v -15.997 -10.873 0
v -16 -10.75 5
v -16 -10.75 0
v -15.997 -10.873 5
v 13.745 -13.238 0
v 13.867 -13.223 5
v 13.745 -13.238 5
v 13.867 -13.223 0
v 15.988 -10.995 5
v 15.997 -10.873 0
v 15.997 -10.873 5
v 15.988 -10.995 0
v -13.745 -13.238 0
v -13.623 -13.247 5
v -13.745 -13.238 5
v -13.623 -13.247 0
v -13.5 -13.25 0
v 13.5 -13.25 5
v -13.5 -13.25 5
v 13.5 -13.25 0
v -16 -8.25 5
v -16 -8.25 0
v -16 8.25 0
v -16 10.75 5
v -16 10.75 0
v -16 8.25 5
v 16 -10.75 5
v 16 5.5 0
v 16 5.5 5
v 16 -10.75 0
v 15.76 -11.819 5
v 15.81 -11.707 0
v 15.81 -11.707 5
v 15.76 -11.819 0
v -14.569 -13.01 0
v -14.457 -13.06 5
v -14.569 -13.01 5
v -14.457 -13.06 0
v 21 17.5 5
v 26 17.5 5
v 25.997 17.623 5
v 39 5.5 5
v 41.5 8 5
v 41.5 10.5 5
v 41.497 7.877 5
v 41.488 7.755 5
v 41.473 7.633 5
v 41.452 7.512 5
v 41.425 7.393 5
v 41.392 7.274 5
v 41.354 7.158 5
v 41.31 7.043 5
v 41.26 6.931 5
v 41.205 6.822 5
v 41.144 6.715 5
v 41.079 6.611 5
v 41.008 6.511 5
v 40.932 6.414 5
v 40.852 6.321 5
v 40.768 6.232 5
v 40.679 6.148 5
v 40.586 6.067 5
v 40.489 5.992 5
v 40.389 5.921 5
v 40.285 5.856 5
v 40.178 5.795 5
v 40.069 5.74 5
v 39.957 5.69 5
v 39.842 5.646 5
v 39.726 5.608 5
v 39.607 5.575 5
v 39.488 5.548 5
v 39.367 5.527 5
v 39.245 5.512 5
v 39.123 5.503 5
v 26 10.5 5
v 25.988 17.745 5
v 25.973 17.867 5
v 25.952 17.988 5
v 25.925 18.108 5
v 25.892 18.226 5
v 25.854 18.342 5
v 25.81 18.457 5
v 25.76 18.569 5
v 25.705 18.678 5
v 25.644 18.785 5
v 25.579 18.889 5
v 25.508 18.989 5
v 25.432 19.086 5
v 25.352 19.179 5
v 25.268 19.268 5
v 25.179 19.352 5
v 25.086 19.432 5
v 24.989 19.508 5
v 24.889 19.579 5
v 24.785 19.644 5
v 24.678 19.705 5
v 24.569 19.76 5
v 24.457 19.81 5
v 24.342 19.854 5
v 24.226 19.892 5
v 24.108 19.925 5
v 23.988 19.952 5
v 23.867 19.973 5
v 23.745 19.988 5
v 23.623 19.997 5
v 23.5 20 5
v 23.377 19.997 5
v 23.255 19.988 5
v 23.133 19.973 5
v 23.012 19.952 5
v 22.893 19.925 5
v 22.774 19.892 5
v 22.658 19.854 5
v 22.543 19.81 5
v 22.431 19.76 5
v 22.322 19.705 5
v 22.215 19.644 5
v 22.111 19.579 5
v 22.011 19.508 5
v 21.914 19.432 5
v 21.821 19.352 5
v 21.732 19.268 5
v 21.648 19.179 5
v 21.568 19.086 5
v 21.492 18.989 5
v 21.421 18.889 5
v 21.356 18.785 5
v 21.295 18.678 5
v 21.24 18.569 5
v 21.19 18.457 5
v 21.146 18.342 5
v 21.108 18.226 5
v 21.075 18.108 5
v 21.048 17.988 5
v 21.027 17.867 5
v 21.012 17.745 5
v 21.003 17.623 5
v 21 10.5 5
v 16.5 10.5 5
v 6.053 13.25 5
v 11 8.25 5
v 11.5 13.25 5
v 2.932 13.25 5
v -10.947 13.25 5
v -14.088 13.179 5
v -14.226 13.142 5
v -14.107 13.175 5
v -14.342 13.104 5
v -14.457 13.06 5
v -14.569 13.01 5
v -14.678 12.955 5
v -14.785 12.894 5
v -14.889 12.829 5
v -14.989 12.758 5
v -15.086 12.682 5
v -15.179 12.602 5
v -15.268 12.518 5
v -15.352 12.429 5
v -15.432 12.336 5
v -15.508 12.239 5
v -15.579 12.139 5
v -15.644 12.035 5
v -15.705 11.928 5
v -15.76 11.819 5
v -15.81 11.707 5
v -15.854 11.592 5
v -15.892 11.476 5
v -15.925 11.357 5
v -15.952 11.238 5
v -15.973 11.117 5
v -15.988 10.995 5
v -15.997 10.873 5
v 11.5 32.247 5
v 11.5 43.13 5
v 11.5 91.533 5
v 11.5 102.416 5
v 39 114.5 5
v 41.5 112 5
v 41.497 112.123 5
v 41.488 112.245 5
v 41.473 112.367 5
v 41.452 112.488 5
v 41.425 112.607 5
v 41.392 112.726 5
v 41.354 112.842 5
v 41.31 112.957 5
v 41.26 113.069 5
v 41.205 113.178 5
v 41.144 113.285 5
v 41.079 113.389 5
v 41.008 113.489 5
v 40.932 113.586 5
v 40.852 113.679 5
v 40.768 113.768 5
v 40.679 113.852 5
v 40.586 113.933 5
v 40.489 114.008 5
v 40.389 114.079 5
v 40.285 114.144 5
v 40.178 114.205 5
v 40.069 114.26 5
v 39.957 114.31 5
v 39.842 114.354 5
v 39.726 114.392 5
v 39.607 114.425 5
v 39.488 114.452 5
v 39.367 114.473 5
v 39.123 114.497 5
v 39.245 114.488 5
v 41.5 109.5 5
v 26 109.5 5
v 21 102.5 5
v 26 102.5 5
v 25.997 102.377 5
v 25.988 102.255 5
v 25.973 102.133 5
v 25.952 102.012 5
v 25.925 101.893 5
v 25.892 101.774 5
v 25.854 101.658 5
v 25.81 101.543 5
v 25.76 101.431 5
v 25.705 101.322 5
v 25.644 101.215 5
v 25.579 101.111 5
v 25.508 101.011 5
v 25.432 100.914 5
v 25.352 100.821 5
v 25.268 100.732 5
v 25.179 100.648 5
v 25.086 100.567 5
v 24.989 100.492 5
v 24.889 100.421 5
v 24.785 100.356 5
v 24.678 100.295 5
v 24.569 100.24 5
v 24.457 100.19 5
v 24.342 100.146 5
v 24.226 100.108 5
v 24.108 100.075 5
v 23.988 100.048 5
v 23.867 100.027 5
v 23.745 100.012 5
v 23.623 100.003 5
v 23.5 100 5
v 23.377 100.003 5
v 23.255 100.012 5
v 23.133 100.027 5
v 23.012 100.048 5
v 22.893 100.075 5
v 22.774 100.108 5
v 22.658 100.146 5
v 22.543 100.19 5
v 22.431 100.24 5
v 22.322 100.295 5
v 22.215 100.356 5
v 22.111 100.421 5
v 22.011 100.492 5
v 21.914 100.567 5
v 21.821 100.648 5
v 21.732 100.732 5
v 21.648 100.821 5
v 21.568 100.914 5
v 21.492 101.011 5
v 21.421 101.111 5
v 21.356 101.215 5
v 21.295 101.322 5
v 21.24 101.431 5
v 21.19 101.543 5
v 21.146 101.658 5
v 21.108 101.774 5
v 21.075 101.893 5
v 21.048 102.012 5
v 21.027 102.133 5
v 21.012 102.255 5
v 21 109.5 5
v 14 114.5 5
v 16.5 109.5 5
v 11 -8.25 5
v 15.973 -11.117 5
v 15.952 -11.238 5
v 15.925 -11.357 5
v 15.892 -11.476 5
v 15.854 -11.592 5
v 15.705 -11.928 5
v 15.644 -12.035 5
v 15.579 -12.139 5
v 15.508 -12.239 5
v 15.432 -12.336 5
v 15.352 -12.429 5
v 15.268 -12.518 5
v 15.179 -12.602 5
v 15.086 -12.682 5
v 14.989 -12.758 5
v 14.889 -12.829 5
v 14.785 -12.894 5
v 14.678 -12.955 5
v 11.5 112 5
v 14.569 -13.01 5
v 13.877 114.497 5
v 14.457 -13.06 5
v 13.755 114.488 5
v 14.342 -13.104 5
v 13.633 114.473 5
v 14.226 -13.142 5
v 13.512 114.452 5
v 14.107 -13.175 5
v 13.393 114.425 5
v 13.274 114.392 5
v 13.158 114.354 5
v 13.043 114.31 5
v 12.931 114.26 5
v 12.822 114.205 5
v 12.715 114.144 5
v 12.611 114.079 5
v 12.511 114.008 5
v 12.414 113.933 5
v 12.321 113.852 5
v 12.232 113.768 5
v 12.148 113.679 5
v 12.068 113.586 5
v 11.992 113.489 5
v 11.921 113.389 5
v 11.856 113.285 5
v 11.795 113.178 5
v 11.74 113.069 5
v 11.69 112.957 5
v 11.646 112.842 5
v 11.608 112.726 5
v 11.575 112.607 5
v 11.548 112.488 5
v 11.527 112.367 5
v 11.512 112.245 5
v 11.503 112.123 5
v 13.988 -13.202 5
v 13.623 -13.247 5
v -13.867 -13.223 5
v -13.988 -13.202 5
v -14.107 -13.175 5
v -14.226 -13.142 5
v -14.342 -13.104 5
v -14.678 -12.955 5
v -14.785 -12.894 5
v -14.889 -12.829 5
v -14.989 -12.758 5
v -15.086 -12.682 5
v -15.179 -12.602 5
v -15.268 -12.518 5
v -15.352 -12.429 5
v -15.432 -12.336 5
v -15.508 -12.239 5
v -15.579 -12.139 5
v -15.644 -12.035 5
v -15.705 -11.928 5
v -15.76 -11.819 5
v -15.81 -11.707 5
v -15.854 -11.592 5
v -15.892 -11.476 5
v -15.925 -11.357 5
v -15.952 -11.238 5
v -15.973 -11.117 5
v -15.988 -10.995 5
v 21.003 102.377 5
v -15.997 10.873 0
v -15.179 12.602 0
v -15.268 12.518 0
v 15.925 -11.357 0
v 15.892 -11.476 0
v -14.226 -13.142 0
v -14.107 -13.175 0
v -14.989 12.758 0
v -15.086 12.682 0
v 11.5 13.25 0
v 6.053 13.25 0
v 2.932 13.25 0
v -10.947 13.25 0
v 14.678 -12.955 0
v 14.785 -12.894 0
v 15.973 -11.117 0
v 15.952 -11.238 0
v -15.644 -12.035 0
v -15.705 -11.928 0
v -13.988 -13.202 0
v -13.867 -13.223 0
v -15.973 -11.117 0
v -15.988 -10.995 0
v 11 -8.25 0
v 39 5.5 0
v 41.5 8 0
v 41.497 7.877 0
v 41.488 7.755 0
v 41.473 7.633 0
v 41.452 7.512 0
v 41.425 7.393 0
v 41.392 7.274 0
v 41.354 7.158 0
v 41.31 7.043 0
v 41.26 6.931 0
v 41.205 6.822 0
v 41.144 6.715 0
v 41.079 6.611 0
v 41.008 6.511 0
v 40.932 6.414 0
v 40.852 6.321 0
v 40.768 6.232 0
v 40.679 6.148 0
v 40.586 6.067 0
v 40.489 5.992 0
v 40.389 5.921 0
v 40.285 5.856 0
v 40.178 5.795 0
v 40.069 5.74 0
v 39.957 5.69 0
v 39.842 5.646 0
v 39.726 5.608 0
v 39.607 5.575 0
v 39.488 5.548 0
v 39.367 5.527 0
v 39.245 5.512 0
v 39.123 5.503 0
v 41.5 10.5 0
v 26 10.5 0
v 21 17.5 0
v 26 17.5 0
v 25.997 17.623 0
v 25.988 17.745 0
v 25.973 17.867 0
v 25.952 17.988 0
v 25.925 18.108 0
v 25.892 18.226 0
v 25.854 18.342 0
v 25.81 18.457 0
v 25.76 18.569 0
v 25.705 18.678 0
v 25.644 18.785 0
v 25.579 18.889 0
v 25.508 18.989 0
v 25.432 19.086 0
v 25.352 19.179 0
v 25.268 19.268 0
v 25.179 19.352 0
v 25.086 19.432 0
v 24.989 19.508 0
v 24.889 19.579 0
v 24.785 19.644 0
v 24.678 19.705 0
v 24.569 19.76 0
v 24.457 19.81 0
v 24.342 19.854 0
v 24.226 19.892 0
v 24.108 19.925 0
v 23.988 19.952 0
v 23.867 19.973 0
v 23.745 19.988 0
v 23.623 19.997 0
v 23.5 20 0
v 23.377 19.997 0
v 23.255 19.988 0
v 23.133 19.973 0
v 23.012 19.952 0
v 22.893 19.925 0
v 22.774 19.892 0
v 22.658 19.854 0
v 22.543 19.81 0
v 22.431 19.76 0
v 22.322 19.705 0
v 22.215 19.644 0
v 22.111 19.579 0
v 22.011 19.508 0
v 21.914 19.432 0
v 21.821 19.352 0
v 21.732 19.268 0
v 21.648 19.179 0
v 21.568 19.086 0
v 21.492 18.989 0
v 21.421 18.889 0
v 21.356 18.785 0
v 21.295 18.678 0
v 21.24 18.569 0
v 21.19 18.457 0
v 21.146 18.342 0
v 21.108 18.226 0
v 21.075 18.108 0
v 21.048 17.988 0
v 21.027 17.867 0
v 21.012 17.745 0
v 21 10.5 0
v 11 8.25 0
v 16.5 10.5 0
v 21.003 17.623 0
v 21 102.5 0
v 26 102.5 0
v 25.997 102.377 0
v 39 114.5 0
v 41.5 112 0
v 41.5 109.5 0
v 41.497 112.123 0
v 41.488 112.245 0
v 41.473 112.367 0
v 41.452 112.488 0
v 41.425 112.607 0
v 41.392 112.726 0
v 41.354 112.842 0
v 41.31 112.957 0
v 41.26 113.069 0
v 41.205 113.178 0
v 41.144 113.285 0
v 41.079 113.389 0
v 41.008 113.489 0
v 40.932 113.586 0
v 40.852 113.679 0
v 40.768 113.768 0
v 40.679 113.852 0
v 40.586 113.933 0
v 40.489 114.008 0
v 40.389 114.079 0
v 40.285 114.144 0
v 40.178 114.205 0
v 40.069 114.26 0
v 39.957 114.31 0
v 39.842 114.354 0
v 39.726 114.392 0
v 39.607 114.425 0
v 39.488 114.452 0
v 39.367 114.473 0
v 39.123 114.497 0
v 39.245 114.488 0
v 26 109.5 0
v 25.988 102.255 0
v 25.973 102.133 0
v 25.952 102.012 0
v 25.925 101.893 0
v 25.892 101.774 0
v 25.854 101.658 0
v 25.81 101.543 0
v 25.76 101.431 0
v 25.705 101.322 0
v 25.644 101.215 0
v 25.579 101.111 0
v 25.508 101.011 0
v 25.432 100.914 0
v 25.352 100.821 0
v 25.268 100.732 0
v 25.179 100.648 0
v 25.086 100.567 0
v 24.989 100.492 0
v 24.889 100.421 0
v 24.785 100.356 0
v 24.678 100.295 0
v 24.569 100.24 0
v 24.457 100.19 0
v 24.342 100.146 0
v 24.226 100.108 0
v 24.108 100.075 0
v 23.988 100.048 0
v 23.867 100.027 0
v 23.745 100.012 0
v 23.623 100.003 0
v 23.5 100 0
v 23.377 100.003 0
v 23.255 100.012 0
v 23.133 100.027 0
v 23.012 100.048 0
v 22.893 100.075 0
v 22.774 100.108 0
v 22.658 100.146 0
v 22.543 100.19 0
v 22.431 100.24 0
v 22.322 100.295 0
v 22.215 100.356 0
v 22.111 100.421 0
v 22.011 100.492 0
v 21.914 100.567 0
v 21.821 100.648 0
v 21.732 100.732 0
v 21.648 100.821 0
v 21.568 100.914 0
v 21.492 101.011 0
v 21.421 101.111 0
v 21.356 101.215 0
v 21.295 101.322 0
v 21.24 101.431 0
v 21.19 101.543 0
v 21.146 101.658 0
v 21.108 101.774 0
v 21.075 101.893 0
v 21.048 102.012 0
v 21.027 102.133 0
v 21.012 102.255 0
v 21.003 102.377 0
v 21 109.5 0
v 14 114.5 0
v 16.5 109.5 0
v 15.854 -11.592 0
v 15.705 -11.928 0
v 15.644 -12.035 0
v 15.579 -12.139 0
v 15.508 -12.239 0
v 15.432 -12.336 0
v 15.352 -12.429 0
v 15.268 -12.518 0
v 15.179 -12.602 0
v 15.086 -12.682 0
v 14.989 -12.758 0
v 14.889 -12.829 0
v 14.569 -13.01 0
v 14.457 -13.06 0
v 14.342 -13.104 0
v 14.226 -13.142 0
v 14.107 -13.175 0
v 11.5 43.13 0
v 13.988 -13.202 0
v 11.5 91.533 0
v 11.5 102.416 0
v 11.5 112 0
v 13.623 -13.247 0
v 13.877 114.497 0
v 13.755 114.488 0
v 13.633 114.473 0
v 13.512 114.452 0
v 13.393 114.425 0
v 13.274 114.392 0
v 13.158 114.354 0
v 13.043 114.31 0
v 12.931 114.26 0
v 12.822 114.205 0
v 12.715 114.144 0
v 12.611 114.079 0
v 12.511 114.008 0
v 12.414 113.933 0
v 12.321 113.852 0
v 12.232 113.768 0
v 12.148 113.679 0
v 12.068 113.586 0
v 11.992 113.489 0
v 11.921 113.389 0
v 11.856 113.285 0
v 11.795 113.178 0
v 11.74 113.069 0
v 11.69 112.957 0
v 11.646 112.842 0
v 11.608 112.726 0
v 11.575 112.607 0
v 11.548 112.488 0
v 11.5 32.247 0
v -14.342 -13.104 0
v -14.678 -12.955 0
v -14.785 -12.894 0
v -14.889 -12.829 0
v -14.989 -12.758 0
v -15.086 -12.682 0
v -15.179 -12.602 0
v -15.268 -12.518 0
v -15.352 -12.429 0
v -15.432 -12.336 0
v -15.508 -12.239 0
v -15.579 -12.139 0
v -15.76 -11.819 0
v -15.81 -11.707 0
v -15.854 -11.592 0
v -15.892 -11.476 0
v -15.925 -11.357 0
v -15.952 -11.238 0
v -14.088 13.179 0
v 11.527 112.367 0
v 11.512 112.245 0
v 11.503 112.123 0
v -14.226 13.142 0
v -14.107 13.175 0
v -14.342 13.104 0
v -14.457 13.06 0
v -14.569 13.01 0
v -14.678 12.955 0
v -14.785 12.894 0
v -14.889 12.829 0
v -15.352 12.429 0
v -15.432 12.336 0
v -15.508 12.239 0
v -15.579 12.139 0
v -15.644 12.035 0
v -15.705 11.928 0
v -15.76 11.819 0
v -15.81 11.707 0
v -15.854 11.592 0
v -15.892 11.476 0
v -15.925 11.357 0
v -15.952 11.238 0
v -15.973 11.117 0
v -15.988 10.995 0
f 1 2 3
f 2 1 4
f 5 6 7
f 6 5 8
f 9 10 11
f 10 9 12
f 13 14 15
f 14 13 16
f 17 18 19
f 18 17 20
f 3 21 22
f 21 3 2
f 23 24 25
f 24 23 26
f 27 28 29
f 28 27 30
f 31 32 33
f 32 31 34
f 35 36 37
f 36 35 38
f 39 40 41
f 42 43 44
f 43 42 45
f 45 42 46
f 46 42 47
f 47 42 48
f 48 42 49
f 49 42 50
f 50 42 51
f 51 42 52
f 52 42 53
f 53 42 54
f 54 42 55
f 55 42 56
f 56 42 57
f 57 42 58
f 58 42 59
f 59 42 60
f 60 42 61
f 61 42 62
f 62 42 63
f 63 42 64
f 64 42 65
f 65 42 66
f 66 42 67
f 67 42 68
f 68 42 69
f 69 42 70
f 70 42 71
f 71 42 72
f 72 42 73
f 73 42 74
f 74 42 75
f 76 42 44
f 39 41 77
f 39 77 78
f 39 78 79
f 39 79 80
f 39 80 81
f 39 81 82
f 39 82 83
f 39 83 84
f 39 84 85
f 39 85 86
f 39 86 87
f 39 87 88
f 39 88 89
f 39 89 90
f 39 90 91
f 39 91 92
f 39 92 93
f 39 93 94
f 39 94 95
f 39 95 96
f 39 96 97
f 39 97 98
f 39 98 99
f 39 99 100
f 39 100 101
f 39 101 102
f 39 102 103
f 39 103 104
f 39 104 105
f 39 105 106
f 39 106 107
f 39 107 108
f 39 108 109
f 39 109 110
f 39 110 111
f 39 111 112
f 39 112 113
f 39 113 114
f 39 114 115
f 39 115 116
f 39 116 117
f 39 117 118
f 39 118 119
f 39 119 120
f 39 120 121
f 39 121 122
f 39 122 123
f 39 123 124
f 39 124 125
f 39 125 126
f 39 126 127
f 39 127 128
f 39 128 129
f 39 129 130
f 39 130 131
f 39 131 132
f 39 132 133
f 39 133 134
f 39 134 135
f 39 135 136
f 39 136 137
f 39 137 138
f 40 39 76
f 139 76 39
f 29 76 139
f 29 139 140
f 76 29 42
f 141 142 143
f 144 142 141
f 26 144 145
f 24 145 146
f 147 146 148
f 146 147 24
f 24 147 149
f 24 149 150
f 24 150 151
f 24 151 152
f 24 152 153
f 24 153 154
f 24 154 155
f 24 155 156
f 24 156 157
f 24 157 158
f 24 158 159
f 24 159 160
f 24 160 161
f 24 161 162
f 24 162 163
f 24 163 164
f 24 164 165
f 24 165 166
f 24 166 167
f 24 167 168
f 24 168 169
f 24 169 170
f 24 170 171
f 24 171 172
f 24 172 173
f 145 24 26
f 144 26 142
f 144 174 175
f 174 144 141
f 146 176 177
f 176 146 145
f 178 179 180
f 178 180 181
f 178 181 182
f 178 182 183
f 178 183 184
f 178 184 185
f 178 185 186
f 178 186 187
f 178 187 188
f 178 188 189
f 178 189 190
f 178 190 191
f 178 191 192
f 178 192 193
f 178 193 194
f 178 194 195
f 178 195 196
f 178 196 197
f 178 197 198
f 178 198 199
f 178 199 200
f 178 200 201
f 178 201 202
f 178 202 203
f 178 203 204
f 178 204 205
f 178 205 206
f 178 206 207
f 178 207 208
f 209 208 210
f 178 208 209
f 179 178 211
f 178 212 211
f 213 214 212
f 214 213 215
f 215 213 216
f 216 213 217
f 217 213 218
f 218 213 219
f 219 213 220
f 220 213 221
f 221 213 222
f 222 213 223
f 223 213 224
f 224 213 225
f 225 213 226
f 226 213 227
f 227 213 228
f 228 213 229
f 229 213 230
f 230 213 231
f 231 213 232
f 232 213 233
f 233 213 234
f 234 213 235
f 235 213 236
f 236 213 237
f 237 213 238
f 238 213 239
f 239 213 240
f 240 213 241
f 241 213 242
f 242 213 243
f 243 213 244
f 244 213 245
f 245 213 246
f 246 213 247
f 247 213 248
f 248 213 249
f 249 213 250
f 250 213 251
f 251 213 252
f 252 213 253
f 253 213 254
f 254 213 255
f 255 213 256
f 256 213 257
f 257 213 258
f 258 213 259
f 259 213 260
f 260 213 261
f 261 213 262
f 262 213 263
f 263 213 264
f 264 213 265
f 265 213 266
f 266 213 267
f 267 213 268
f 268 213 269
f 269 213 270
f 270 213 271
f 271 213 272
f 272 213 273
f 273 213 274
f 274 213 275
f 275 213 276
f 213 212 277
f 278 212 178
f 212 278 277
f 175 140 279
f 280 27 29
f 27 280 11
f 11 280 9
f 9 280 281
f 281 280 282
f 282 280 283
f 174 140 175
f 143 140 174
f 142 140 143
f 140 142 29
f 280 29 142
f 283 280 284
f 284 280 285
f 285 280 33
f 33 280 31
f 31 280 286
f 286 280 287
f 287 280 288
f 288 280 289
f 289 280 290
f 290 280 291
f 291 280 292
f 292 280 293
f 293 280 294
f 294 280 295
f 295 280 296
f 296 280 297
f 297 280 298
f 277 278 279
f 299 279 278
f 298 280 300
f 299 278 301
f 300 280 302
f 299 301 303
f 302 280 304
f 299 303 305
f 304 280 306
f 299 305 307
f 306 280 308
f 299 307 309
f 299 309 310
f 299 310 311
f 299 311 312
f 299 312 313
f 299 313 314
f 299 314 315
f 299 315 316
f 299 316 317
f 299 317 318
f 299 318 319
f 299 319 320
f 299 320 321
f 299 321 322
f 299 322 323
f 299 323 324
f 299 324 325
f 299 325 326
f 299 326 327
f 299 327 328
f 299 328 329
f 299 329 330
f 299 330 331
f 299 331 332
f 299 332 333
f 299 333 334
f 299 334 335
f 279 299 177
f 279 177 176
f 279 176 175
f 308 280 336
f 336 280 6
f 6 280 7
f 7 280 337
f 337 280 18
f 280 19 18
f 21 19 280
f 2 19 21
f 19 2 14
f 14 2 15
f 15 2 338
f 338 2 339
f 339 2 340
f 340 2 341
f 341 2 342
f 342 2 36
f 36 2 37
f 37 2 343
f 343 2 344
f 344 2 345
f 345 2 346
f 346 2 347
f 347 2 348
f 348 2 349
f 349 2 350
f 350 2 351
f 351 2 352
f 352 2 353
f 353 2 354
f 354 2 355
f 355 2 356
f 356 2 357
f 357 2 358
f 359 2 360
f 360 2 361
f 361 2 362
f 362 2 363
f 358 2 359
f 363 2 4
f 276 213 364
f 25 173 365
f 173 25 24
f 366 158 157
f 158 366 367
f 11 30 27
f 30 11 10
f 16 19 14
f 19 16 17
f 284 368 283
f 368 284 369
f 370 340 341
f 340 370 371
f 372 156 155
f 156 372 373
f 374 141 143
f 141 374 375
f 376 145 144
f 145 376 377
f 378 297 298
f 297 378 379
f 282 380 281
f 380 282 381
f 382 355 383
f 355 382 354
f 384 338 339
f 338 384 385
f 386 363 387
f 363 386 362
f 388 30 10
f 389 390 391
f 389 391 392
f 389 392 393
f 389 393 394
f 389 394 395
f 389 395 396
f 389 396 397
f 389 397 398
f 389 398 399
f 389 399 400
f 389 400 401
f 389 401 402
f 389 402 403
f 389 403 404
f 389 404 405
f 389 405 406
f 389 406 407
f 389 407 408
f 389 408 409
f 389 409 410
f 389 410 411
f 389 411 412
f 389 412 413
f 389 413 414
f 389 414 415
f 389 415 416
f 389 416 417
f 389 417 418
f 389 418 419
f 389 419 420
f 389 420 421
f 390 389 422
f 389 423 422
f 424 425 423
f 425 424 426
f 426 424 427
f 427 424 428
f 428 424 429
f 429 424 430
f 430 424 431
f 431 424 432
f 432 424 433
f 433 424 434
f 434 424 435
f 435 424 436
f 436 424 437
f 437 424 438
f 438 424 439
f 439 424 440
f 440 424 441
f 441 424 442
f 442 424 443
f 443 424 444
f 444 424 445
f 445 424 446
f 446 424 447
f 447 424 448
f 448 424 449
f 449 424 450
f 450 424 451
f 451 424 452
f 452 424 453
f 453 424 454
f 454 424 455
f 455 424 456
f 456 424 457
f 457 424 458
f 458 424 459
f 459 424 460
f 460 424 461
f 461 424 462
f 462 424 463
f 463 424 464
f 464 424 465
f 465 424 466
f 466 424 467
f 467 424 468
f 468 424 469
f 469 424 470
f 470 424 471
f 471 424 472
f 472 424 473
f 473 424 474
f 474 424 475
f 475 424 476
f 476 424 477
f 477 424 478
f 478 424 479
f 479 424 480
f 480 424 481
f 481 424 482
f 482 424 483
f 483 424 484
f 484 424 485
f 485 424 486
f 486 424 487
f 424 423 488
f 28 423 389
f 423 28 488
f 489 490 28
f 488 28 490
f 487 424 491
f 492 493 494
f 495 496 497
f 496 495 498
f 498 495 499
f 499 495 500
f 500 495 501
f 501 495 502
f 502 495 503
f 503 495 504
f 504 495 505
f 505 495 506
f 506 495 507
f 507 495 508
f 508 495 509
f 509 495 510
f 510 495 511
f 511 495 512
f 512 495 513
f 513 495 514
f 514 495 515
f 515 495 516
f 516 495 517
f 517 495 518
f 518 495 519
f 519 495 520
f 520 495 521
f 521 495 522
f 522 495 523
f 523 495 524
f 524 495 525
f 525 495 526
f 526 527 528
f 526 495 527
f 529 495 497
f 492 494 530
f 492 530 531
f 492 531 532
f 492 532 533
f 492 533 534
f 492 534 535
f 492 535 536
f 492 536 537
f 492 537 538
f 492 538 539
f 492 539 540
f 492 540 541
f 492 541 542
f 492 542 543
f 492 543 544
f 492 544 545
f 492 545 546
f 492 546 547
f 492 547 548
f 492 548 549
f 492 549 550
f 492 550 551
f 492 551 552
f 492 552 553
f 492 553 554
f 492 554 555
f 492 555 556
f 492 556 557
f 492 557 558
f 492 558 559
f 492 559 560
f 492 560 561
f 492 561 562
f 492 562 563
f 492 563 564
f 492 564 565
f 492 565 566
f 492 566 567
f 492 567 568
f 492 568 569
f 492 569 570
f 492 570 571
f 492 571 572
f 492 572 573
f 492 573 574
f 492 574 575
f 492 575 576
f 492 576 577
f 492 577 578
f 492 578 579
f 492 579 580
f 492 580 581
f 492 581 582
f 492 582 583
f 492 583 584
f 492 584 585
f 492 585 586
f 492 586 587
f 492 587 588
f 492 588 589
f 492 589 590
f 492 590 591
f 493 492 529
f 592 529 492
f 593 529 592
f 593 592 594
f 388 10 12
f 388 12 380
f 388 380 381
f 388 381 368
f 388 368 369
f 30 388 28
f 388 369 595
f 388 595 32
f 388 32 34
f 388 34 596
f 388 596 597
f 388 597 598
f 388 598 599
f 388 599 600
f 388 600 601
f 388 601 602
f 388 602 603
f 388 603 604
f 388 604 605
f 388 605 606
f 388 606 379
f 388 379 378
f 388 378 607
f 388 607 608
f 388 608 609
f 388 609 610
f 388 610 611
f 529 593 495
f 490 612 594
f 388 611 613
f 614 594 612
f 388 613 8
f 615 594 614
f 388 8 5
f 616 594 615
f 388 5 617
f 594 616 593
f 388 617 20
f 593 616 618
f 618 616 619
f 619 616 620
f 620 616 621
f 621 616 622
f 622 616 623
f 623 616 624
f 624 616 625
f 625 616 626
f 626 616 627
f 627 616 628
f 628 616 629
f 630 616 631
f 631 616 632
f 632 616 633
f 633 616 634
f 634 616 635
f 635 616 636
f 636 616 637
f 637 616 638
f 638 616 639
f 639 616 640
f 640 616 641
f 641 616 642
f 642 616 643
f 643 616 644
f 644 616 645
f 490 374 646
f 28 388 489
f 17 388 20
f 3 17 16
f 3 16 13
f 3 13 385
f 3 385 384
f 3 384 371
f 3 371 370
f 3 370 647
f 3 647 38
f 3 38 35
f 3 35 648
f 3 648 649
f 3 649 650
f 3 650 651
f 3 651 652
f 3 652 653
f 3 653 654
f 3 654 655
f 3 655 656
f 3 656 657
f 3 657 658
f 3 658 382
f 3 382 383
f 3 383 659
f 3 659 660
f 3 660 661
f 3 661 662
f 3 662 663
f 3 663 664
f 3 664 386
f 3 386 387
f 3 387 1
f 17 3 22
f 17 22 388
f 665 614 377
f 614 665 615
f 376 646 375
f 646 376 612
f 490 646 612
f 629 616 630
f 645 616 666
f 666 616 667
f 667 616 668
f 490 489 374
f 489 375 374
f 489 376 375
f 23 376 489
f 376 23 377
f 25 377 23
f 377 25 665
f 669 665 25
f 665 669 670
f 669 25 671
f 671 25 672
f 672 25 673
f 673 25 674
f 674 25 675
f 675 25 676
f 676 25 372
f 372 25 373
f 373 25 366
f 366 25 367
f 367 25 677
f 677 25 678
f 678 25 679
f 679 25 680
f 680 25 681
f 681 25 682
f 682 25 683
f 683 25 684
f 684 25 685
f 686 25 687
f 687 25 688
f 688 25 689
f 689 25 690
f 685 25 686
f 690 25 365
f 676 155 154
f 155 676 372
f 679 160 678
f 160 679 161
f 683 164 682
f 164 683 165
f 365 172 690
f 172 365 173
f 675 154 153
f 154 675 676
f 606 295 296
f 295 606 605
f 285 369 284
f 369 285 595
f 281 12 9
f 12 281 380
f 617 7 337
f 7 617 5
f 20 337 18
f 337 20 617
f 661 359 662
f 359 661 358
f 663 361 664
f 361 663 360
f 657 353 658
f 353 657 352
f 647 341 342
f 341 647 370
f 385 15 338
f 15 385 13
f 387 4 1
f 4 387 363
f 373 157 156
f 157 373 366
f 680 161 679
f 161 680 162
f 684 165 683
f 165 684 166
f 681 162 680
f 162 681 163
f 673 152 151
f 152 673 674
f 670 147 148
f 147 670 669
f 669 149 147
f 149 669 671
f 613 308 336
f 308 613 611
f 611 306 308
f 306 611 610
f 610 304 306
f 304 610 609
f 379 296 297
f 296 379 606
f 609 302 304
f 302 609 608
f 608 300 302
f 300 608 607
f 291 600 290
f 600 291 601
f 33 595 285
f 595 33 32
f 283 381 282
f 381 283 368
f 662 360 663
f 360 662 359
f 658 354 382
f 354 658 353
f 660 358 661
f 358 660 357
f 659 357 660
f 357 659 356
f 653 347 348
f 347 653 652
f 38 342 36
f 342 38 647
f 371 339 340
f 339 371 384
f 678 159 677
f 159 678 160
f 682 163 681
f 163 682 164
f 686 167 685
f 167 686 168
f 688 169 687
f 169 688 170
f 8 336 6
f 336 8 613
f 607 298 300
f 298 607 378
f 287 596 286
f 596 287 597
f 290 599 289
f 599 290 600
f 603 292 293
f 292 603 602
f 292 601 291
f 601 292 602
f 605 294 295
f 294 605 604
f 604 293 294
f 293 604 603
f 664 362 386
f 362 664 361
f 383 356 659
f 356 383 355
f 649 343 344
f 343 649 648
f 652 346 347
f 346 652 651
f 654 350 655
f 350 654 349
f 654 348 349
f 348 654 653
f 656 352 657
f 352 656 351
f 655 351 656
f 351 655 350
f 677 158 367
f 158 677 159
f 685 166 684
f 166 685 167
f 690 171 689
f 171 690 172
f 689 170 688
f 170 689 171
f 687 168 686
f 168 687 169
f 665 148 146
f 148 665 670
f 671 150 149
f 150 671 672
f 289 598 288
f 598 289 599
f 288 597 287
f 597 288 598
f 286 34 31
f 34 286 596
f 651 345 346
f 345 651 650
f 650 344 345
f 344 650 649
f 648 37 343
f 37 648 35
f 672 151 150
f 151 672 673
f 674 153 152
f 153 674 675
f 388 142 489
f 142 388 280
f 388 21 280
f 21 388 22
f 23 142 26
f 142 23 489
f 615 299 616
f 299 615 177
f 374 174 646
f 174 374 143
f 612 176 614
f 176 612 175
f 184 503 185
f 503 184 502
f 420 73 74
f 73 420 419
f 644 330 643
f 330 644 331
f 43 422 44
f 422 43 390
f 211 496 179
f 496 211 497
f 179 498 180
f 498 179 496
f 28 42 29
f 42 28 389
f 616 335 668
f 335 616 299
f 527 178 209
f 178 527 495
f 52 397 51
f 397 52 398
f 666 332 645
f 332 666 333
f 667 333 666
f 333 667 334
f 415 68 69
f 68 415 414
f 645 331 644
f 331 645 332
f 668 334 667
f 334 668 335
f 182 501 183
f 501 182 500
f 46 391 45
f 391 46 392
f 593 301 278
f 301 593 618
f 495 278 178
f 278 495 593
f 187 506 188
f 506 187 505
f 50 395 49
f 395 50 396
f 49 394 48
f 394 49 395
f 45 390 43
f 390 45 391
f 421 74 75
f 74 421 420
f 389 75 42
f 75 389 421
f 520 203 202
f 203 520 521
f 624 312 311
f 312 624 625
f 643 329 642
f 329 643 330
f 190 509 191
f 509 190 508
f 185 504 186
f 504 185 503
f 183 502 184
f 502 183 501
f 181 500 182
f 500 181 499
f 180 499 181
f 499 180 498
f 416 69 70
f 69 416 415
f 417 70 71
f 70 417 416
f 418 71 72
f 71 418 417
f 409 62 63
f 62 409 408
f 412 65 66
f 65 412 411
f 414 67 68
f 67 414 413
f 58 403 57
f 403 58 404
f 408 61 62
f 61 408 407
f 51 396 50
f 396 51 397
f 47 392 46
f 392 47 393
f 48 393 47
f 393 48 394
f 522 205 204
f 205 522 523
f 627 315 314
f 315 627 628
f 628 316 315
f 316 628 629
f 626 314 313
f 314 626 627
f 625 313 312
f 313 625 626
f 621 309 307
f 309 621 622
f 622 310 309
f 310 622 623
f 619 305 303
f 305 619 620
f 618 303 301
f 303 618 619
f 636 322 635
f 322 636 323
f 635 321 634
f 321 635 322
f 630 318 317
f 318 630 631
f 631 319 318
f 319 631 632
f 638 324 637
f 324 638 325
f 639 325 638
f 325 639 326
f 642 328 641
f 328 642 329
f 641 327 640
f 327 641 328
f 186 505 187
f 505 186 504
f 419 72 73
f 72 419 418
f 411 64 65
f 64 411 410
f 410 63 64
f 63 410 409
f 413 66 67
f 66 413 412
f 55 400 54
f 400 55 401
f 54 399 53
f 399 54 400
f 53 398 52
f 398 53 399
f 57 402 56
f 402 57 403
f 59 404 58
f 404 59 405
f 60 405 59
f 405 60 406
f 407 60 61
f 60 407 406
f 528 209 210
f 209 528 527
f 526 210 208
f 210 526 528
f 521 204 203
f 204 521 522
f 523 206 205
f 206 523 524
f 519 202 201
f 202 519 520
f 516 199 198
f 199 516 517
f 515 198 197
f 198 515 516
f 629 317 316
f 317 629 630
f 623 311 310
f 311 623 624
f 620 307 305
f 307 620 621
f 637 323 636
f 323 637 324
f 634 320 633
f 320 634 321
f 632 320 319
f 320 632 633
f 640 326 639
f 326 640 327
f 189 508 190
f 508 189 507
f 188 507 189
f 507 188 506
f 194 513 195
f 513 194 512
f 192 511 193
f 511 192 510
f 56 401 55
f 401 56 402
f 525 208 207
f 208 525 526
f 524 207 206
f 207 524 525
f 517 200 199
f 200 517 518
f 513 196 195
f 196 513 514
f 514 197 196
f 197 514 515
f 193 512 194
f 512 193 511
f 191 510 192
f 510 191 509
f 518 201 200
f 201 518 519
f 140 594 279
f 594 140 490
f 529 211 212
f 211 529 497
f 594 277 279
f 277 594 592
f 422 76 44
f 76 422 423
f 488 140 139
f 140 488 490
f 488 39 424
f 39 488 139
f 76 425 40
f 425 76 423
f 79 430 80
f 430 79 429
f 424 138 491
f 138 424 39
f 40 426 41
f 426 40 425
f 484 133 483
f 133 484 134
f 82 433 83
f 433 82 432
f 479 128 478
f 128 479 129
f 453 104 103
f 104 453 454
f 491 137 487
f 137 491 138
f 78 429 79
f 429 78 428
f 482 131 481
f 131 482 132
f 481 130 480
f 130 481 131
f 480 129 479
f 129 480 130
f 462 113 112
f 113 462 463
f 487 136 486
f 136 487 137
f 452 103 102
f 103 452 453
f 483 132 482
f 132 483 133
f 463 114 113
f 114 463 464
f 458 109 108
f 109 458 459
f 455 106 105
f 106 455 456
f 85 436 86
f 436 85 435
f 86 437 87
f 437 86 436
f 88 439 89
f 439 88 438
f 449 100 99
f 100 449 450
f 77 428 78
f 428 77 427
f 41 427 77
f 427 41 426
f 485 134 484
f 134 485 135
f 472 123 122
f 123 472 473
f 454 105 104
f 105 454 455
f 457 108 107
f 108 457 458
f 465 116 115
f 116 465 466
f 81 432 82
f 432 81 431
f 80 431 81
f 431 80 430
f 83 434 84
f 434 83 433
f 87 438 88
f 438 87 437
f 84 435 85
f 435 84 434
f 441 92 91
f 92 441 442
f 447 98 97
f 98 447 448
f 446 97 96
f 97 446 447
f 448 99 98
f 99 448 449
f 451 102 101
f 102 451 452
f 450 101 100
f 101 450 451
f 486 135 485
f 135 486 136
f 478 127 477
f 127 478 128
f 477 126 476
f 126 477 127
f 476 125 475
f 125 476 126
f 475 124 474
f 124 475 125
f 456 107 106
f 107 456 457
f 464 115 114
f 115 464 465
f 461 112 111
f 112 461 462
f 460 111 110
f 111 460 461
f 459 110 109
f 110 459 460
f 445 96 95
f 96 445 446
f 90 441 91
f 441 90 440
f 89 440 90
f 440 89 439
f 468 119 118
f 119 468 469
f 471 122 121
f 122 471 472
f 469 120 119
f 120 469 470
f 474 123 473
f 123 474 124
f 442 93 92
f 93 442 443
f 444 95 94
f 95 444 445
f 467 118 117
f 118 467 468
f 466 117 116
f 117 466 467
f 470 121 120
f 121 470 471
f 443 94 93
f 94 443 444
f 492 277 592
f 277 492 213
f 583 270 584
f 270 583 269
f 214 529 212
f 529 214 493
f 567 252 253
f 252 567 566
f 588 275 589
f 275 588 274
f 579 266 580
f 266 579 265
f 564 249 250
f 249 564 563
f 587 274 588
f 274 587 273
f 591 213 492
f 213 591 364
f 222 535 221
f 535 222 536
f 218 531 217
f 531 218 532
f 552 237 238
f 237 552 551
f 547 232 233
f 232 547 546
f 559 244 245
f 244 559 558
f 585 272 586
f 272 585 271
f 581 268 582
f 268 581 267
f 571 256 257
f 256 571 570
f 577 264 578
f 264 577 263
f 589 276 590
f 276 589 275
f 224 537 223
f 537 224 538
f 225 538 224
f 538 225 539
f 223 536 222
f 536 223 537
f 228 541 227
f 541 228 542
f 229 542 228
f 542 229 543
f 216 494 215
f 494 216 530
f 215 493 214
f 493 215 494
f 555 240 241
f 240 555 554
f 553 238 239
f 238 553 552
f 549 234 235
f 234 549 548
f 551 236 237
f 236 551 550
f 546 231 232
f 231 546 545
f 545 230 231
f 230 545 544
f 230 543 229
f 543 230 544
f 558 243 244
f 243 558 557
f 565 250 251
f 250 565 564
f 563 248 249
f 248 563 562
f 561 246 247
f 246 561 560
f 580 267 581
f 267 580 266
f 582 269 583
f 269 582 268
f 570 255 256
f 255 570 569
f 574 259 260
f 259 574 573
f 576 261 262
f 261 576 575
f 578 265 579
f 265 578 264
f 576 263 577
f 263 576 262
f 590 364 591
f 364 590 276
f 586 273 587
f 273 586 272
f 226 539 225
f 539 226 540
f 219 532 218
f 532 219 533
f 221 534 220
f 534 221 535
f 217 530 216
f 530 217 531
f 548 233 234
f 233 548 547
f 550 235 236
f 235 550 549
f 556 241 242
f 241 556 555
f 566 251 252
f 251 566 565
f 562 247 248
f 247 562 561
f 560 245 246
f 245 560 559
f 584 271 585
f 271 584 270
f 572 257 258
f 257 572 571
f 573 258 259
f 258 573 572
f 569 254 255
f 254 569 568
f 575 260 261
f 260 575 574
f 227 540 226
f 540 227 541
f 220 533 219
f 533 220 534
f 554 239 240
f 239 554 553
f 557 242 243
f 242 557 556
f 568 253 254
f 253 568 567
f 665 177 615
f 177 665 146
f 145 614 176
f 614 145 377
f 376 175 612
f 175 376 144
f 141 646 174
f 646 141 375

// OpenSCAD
$fn = 128;
fudge = 0.1;

HEIGHT = 5;
SCALE = 3.58;

color("green")
bed_holder_new();

color("pink")
translate([26.5,60,0])
lamp_holder_alt();

extra_support();
extra_support_mini();

module rounded_corners(width, height, depth, corner_curve){
    x_translate = width-corner_curve;
    y_translate = height-corner_curve;     
    
    hull(){
            translate([-x_translate/2, -y_translate/2, 0])
            cylinder(depth,corner_curve/2, corner_curve/2, true);    
            
            translate([-x_translate/2, y_translate/2, 0])
            cylinder(depth,corner_curve/2, corner_curve/2, true);

            translate([x_translate/2, y_translate/2, 0])
            cylinder(depth,corner_curve/2, corner_curve/2, true);        
            
            translate([x_translate/2, -y_translate/2, 0])
            cylinder(depth,corner_curve/2, corner_curve/2, true);        
    }        
}

module bed_holder_new(){
    distance = 16.5; //16.5
    thickness = 5;
    height = 32;
    top_lenght = distance + 2*thickness;
    translate([0,0,5/2])
    difference(){
        rounded_corners(height, top_lenght, 5, 5);            
        translate([-thickness,0,0])
        cube([height, distance, 5*2], true);
    }
}

module lamp_holder(){
    difference(){        
        union() {    
            poly_rect37817(1);
            poly_rect3779(1);
            poly_rect3781(1);      
       };
       translate([3,0,0])
       cube([12,25,10], true);     
    }    
}

module lamp_holder_alt(){
    width = 109;
//    translate([30 - 6/2, width/2 + 11/2 , 4])
    translate([0,0,5/2])
    union(){
        difference(){            
            rounded_corners(30, width, 5, 5);
            translate([5,0,0])
            cube([30, width-2*5, 5*2], true);
        }
        
        translate([-3,-(width-15)/2,0])
        rounded_corners(5, 14, 5, 5);
        
        translate([-3,(width-15)/2,0])
        rounded_corners(5, 14, 5, 5);        
    }
}

module extra_support(){
       translate([-15,10,0])    
       rotate([0,0,-16])
       cube([3,97,5], false);    
}

module extra_support_mini(){
       translate([2,10,0])    
       rotate([0,0,-16])
       cube([3,38,5], false);       
}
